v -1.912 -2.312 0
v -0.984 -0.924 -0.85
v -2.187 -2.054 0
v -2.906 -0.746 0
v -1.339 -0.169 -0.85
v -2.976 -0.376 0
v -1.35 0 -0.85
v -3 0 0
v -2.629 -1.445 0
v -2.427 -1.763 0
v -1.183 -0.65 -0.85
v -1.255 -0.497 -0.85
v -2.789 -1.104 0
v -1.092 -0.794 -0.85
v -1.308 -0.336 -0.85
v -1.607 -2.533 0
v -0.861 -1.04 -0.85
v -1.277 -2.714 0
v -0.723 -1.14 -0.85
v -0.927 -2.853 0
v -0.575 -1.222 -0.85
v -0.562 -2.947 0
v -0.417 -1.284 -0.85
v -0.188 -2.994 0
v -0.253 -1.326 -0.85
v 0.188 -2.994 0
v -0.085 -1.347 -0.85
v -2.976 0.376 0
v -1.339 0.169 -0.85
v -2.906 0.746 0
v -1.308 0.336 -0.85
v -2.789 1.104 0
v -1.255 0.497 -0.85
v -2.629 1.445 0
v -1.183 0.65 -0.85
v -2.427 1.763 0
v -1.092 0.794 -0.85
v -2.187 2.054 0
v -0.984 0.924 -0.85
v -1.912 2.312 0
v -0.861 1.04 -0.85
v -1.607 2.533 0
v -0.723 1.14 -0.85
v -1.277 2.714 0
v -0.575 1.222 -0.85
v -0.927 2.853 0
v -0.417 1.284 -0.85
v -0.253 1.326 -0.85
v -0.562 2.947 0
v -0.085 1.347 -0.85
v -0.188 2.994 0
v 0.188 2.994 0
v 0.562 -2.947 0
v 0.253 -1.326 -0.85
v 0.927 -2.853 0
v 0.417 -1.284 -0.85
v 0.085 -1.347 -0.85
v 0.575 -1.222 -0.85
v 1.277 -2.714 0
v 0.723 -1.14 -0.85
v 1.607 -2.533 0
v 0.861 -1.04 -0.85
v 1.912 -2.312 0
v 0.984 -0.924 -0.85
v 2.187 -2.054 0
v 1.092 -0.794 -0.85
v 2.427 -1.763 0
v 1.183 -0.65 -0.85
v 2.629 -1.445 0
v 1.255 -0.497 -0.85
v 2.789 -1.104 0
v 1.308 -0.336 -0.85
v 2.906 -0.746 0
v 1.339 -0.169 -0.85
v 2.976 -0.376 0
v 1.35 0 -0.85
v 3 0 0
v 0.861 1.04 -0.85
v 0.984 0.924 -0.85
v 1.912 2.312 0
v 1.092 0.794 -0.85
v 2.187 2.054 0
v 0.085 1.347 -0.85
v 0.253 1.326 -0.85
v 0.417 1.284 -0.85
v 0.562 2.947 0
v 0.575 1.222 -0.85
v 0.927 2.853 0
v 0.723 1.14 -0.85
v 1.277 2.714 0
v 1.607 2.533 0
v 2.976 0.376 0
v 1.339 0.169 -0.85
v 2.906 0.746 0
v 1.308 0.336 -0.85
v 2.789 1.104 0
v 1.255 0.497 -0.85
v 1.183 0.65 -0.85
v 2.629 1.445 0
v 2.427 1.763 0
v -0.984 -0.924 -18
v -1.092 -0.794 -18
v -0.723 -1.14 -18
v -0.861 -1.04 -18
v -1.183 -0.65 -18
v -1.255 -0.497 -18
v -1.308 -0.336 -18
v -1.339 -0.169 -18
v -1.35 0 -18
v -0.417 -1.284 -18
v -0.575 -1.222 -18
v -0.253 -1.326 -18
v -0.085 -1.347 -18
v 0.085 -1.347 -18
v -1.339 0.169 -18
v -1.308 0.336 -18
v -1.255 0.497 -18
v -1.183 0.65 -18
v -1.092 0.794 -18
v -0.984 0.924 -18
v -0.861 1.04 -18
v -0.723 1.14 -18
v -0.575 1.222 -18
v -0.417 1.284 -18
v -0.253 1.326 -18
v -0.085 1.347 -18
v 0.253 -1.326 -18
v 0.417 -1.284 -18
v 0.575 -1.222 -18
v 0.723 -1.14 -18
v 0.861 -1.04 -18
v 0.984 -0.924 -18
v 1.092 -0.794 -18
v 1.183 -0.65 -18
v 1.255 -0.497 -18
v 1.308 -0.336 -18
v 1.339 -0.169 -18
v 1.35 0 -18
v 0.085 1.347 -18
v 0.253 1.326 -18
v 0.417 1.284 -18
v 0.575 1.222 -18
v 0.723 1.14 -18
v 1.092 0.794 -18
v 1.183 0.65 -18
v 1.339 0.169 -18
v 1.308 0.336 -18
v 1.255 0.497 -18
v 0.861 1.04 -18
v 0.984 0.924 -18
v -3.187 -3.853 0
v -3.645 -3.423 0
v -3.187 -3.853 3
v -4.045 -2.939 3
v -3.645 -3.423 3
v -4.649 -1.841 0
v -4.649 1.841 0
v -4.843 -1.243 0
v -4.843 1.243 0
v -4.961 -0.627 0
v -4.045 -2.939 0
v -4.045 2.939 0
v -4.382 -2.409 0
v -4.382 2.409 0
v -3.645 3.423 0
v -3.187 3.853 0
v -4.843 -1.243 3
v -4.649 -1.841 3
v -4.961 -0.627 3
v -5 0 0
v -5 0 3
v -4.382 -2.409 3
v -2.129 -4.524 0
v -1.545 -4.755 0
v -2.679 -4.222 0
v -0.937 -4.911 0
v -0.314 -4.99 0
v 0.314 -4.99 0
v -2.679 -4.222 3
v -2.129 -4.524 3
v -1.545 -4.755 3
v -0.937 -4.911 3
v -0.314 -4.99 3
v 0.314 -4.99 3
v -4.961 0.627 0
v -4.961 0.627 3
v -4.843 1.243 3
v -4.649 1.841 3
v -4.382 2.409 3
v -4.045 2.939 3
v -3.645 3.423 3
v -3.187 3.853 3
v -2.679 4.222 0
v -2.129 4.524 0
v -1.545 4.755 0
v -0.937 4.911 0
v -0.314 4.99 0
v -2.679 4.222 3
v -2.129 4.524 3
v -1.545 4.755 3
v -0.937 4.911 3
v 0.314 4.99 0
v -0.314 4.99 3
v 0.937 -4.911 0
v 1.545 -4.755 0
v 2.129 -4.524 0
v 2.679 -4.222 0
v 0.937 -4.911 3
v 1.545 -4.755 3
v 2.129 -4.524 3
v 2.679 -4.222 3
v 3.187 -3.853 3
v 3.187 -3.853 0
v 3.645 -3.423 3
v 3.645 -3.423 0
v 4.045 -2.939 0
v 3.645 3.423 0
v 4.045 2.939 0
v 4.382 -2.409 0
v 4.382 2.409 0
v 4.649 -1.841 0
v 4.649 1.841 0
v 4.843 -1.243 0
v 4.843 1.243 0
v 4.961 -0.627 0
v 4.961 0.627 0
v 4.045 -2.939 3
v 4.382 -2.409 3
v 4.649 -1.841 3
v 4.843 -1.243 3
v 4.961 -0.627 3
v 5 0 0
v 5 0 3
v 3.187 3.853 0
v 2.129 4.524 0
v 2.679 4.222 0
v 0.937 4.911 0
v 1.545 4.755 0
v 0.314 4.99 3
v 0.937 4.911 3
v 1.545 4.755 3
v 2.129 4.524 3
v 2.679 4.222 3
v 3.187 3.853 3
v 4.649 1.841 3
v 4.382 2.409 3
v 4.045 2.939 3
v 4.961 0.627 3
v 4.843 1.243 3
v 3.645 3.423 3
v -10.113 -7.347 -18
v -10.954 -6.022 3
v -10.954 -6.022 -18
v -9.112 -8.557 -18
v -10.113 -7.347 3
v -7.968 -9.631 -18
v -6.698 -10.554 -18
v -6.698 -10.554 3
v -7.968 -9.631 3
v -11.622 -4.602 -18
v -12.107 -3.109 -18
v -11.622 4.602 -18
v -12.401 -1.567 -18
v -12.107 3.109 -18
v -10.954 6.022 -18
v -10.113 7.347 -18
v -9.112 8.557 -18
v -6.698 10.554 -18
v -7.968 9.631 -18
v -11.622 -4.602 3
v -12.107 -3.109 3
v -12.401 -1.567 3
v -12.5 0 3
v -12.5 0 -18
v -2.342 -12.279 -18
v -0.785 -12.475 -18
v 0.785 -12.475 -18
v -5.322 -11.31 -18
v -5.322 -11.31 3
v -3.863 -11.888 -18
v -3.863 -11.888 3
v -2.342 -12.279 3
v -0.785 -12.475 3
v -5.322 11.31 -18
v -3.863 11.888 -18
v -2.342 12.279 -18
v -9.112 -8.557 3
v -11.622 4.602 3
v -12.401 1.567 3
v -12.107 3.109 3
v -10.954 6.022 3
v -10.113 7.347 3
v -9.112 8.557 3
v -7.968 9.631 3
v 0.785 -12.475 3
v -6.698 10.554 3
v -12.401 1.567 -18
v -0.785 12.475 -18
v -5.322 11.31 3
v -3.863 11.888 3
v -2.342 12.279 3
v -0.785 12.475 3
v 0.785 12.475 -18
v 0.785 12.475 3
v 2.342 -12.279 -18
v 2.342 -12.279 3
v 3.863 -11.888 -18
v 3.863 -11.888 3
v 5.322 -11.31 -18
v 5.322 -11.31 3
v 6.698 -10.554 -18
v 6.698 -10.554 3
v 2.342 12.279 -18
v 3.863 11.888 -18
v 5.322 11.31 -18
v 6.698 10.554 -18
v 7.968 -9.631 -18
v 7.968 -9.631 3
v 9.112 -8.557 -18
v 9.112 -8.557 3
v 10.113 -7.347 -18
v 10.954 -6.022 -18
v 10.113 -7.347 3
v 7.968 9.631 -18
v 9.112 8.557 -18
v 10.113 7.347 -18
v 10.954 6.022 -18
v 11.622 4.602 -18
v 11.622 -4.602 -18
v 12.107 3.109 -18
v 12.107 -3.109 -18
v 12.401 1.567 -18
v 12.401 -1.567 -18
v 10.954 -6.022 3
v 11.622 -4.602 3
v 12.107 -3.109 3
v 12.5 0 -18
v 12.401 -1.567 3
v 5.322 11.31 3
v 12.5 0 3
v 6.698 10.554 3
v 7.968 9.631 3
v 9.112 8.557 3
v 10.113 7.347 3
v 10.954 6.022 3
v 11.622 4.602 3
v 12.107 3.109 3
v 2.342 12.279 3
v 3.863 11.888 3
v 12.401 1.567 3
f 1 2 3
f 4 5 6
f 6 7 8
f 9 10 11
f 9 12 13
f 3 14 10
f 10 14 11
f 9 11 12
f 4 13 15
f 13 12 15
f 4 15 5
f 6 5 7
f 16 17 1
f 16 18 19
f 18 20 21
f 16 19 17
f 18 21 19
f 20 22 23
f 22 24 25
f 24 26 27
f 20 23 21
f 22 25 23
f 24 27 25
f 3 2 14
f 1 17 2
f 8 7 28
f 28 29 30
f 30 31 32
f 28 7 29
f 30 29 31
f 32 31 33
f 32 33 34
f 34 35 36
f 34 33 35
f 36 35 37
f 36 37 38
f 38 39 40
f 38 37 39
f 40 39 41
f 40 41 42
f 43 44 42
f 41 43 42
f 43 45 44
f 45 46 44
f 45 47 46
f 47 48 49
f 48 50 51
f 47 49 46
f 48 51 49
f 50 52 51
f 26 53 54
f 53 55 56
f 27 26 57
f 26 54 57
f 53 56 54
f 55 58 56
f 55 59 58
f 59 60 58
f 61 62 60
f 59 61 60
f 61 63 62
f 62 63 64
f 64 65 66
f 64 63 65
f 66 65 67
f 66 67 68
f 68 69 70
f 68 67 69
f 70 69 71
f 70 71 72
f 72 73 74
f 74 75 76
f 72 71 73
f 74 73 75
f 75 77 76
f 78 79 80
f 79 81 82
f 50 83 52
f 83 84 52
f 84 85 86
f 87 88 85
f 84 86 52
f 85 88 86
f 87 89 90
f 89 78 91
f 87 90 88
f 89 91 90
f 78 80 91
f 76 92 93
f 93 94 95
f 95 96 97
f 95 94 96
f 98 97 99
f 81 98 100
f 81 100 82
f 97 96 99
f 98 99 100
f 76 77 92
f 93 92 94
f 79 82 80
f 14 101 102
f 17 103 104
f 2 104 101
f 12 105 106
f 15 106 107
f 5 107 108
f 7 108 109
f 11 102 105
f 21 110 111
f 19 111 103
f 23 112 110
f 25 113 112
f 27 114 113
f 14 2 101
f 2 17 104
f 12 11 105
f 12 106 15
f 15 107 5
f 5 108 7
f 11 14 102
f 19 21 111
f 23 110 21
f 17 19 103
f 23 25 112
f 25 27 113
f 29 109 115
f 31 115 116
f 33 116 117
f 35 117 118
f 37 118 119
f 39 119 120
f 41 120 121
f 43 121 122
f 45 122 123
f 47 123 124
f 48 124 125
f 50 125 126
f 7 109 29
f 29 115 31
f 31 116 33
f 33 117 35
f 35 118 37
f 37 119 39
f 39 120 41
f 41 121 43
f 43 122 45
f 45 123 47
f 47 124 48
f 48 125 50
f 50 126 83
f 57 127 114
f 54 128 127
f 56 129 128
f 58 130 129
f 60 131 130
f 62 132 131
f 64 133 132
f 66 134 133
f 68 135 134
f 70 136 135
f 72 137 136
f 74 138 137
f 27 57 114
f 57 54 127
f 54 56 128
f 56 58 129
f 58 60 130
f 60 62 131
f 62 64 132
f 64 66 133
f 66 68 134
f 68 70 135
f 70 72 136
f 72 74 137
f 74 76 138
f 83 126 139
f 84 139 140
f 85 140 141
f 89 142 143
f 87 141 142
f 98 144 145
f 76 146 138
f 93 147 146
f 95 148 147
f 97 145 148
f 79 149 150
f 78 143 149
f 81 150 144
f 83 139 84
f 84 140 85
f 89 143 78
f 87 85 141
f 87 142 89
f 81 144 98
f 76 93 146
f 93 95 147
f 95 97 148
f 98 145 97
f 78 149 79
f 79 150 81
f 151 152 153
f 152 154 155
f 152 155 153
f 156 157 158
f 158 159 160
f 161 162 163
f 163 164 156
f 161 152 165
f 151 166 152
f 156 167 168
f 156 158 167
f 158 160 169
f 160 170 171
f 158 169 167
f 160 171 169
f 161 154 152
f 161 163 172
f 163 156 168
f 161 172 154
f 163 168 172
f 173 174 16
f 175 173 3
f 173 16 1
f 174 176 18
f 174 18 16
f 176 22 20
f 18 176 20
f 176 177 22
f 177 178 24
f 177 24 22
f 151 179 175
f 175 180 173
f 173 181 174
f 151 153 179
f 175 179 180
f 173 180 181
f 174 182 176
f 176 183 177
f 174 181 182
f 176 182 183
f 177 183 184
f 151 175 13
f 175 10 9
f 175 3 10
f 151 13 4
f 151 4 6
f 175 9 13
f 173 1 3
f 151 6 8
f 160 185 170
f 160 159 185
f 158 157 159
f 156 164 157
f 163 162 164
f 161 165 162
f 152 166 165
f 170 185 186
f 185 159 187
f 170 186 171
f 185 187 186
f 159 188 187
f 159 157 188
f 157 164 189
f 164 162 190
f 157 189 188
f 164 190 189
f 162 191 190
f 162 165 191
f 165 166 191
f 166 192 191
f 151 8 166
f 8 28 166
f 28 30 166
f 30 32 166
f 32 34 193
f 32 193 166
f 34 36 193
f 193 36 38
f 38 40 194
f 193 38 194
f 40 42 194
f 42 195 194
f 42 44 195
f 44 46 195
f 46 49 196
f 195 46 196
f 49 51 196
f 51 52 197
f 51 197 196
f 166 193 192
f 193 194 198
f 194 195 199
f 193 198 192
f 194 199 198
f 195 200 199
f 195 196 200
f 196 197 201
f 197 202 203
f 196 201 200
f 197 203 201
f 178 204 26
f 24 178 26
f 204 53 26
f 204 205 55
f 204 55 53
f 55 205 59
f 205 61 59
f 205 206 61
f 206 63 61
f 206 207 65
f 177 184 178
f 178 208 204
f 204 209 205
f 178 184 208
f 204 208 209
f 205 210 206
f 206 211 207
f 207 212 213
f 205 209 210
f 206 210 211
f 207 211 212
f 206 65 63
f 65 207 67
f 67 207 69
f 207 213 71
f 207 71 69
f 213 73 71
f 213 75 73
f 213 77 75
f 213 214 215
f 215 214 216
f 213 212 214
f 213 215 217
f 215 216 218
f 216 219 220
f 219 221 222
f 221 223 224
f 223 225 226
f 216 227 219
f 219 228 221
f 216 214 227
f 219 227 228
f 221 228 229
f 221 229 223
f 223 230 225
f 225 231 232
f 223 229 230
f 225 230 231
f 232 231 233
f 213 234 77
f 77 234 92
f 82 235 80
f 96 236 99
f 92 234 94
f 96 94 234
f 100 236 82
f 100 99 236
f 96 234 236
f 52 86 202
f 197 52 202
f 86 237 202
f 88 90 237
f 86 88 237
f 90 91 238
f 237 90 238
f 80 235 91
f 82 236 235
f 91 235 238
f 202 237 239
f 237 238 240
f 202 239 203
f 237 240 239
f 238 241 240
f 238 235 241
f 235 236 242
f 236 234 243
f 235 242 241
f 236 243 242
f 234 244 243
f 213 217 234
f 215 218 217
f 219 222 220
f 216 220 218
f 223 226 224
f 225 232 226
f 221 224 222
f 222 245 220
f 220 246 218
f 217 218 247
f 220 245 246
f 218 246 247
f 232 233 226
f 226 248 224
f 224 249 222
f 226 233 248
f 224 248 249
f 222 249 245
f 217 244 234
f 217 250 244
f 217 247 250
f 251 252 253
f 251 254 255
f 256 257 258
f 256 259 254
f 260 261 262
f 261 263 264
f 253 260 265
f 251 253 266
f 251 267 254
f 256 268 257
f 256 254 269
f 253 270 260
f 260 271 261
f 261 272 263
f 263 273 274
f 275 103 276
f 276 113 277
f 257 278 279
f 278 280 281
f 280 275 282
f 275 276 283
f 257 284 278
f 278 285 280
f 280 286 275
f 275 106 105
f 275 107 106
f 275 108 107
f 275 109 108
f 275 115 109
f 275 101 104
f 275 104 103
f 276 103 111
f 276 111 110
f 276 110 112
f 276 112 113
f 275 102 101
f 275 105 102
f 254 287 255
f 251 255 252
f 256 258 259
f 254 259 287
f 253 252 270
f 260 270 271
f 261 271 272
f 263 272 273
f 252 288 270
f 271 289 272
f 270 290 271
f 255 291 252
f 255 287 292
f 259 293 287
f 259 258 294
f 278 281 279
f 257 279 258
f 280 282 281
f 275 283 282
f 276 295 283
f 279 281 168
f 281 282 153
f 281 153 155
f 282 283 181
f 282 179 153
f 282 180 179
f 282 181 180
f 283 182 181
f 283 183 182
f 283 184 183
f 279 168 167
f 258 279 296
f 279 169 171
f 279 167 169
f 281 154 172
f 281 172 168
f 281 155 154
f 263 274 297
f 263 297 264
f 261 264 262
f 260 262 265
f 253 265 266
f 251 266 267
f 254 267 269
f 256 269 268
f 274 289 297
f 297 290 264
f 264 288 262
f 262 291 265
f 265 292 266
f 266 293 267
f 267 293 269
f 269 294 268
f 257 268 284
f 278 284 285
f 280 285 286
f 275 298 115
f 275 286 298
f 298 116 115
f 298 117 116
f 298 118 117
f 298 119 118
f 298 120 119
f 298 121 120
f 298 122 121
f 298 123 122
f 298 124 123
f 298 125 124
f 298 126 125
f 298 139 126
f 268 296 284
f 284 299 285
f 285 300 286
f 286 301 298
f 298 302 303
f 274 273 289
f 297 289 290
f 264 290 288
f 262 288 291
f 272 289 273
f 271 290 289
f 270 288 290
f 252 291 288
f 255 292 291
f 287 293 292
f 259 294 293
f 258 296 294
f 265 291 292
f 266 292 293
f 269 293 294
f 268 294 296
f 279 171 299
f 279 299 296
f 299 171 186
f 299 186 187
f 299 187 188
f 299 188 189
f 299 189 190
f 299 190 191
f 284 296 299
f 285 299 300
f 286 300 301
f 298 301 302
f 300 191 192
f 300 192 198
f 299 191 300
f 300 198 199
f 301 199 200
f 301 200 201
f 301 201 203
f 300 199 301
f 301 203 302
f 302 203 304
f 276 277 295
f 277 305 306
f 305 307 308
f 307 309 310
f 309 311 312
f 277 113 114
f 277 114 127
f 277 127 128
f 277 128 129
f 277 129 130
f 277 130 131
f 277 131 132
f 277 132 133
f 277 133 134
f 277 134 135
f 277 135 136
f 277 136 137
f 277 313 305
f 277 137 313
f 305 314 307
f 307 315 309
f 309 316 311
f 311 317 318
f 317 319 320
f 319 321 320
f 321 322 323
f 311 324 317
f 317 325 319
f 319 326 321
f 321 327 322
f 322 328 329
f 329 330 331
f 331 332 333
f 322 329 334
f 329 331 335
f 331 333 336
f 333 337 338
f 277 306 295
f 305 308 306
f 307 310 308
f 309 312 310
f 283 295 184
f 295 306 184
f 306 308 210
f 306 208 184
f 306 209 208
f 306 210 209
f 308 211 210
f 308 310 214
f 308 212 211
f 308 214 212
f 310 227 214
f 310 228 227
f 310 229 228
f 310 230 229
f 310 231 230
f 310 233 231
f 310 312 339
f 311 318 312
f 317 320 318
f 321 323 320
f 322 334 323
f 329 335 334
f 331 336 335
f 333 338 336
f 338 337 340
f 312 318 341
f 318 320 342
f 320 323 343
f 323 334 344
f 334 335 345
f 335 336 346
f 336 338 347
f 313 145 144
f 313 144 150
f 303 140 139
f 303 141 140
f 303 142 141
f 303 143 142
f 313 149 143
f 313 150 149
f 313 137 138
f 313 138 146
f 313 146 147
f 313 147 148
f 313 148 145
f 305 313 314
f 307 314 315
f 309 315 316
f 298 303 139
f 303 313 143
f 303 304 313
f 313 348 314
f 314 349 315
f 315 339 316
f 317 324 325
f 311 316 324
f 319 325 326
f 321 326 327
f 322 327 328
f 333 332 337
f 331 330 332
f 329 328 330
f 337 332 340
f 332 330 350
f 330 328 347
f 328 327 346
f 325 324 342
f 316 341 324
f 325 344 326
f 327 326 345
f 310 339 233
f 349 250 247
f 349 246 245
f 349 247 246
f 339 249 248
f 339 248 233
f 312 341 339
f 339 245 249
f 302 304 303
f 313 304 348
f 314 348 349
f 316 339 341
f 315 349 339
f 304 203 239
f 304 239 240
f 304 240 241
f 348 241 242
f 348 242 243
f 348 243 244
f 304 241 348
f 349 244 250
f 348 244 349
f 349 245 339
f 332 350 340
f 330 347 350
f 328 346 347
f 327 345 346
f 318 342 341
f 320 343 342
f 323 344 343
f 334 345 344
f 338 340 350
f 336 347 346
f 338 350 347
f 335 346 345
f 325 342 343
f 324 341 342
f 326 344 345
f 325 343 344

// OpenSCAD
$fn = 50;

difference() {
	union() {
		translate(v = [0, 0, -18.0]) {
			cylinder(h = 21, r = 12.5);
		}
	}
	union() {
		translate(v = [0, 0, 0]) {
			rotate(a = [0, 0, 0]) {
				difference() {
					union() {
						translate(v = [0, 0, -21.0]) {
							cylinder(h = 21, r = 1.0);
						}
						translate(v = [0, 0, -0.85]) {
							cylinder(h = 0.85, r1 = 1.35, r2 = 3.0);
						}
						translate(v = [0, 0, -21.0]) {
							cylinder(h = 21, r = 1.35);
						}
						translate(v = [0, 0, -21.0]) {
							cylinder(h = 21, r = 1.0);
						}
					}
					union();
				}
			}
		}
		#cylinder(h = 3, r = 5.0);
	}
}
